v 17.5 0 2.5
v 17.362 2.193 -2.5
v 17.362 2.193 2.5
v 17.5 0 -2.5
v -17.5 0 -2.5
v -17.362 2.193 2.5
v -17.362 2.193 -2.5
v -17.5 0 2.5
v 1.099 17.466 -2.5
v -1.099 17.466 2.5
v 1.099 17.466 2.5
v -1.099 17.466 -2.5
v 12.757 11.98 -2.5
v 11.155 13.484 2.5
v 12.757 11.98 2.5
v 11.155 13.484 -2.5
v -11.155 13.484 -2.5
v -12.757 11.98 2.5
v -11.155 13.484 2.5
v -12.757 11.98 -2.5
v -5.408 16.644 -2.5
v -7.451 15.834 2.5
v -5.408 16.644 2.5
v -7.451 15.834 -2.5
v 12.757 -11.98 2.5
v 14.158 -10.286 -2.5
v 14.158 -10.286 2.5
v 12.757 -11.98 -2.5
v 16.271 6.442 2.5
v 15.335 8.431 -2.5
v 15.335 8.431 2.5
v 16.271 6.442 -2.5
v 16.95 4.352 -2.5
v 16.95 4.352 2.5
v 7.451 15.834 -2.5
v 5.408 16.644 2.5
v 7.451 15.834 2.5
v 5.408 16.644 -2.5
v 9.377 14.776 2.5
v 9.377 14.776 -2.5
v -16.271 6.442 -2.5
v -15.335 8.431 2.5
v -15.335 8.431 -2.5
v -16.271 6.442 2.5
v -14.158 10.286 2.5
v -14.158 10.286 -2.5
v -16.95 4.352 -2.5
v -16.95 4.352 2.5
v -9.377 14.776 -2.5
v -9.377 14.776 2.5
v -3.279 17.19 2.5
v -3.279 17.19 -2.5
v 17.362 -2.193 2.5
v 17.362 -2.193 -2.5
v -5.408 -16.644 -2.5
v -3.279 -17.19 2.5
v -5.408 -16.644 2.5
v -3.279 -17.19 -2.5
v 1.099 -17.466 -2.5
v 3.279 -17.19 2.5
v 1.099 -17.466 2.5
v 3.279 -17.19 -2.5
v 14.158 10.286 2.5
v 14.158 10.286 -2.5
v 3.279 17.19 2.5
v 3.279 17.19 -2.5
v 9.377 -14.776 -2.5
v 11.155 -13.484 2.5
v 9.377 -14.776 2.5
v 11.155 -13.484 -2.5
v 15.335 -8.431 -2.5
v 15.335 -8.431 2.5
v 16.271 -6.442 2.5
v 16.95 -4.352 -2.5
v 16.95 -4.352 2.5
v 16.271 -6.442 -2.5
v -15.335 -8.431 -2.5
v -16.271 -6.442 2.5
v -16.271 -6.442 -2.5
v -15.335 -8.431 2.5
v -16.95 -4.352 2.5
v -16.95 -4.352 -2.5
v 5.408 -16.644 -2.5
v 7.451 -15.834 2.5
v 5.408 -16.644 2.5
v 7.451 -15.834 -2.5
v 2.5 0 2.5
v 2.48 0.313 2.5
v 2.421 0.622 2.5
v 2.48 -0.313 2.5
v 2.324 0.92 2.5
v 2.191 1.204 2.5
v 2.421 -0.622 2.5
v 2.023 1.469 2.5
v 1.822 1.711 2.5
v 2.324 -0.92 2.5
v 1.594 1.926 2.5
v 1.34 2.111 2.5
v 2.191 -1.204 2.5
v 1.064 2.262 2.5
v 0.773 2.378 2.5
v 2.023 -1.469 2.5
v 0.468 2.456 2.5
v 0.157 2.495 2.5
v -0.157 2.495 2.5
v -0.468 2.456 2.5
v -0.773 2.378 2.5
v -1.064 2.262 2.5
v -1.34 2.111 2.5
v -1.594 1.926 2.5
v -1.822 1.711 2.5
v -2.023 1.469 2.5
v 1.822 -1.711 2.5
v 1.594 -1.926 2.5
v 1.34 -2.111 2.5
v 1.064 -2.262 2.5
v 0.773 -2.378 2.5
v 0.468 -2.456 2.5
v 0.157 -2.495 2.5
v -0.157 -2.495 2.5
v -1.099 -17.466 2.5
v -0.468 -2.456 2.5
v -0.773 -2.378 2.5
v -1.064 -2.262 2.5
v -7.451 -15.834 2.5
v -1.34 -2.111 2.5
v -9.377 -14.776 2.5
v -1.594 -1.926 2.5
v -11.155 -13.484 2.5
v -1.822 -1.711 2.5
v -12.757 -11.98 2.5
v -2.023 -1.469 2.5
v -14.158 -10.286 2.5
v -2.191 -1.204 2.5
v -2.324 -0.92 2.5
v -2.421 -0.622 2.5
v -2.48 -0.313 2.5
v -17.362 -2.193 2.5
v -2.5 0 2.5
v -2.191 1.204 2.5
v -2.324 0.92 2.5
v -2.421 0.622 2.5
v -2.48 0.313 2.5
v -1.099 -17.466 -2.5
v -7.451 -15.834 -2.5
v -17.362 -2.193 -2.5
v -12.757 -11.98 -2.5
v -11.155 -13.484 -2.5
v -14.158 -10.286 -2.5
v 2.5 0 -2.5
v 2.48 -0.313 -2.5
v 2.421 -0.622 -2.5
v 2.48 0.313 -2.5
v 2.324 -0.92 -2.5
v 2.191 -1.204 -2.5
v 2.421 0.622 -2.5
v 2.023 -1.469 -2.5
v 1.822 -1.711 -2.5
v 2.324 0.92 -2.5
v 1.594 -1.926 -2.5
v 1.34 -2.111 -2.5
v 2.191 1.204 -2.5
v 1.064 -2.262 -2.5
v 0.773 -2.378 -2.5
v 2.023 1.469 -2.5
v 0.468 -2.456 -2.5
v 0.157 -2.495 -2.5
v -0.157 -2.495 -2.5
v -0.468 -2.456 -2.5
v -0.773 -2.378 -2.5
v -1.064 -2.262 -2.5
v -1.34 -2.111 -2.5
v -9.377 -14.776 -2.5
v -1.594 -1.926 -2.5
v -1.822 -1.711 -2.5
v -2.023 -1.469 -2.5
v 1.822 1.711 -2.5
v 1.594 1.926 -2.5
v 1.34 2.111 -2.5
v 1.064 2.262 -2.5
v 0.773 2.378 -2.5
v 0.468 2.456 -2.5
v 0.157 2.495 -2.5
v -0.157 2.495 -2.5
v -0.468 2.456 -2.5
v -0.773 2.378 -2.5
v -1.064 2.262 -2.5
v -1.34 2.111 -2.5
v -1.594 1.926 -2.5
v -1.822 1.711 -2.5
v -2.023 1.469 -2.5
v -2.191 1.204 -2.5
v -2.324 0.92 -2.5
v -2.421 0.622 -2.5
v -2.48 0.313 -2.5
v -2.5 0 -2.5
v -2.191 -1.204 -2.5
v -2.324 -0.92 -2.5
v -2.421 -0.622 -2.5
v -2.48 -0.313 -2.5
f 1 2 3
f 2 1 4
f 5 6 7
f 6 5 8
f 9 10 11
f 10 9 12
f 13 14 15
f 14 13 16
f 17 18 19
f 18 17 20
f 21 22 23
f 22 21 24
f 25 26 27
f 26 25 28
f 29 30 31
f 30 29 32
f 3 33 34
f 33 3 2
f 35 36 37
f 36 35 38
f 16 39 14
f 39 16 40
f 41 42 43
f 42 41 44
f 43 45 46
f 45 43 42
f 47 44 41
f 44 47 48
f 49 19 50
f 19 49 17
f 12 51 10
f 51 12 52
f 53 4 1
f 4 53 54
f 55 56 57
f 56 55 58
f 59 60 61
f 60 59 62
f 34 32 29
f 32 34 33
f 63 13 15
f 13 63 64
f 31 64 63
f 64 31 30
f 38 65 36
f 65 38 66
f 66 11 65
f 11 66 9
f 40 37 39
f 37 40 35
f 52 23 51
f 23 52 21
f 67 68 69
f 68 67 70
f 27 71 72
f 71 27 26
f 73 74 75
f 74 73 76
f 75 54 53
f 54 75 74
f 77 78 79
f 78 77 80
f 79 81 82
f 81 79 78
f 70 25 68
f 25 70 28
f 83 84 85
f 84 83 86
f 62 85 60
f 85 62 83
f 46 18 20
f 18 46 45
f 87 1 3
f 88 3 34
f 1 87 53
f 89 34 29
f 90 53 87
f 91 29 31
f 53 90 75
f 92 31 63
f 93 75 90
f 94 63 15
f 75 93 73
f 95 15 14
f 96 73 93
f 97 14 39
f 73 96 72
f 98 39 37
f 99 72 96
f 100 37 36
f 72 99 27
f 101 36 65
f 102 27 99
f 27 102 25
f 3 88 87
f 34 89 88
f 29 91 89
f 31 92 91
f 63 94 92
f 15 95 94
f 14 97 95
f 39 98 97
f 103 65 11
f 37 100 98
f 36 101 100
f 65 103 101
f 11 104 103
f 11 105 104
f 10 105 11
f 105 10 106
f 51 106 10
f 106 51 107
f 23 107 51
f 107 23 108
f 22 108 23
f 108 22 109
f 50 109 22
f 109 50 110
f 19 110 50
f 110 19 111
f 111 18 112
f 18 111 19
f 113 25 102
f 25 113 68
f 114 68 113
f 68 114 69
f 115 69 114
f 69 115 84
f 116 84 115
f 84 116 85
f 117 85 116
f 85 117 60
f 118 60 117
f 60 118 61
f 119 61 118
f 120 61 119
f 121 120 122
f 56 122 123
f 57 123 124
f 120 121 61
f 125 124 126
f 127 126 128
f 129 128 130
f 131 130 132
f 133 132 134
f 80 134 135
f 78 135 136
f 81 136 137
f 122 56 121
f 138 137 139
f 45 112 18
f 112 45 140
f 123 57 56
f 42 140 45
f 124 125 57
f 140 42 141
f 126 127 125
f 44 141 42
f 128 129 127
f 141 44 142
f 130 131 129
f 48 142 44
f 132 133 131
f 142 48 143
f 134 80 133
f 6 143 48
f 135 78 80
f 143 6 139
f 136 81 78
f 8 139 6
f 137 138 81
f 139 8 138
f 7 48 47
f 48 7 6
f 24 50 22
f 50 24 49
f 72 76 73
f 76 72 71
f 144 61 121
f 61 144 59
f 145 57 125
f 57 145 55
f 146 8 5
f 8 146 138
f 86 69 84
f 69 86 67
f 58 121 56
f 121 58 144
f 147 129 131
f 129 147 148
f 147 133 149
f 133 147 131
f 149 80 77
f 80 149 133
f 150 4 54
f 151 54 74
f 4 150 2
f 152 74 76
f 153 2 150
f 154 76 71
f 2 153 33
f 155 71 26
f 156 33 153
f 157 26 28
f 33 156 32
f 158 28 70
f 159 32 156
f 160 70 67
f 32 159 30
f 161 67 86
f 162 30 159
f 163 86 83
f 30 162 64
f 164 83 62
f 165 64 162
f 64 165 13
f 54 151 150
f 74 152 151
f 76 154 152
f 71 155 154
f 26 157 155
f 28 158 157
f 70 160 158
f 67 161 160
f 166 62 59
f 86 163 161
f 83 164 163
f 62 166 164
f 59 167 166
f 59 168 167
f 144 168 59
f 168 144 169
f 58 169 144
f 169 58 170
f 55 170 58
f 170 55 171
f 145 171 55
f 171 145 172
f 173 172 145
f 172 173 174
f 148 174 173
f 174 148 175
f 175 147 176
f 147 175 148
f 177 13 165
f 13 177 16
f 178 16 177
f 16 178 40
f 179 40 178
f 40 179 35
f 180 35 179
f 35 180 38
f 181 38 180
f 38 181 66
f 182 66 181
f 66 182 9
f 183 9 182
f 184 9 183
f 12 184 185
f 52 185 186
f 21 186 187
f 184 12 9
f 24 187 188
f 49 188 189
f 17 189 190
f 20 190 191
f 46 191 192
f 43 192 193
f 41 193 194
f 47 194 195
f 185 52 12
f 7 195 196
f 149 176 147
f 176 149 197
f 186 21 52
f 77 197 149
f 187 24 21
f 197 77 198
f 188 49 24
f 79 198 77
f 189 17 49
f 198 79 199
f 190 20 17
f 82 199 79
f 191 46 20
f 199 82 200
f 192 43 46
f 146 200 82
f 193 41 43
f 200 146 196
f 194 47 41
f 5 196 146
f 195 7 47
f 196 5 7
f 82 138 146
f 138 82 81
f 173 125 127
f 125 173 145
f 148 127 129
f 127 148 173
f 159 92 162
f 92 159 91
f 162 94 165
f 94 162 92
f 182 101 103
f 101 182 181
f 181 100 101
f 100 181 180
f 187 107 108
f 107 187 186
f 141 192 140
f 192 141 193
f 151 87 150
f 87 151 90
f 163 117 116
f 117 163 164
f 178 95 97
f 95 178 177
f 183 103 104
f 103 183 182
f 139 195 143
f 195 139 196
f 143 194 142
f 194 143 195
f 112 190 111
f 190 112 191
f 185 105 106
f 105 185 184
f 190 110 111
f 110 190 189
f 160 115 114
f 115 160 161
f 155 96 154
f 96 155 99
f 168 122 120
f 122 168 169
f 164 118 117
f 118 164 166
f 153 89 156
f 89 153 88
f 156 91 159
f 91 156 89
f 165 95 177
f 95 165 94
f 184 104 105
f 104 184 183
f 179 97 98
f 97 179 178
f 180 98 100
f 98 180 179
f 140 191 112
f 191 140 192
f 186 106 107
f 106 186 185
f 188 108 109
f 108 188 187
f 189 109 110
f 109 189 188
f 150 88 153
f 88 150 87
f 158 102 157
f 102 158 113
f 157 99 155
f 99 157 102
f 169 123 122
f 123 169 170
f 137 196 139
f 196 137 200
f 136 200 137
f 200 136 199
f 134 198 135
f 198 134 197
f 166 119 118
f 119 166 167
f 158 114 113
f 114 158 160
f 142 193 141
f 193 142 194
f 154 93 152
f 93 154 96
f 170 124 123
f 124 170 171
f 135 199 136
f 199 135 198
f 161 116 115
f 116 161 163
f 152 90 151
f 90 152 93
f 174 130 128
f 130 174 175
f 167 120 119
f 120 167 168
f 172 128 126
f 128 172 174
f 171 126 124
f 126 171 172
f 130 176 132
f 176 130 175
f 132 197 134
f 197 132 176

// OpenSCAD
$fn = 50;


difference() {
	union() {
		translate(v = [0, 0, -2.5000000000]) {
			cylinder(h = 5, r = 17.5000000000);
		}
	}
	union() {
		translate(v = [0, 0, -100.0000000000]) {
			cylinder(h = 200, r = 2.5000000000);
		}
	}
}
